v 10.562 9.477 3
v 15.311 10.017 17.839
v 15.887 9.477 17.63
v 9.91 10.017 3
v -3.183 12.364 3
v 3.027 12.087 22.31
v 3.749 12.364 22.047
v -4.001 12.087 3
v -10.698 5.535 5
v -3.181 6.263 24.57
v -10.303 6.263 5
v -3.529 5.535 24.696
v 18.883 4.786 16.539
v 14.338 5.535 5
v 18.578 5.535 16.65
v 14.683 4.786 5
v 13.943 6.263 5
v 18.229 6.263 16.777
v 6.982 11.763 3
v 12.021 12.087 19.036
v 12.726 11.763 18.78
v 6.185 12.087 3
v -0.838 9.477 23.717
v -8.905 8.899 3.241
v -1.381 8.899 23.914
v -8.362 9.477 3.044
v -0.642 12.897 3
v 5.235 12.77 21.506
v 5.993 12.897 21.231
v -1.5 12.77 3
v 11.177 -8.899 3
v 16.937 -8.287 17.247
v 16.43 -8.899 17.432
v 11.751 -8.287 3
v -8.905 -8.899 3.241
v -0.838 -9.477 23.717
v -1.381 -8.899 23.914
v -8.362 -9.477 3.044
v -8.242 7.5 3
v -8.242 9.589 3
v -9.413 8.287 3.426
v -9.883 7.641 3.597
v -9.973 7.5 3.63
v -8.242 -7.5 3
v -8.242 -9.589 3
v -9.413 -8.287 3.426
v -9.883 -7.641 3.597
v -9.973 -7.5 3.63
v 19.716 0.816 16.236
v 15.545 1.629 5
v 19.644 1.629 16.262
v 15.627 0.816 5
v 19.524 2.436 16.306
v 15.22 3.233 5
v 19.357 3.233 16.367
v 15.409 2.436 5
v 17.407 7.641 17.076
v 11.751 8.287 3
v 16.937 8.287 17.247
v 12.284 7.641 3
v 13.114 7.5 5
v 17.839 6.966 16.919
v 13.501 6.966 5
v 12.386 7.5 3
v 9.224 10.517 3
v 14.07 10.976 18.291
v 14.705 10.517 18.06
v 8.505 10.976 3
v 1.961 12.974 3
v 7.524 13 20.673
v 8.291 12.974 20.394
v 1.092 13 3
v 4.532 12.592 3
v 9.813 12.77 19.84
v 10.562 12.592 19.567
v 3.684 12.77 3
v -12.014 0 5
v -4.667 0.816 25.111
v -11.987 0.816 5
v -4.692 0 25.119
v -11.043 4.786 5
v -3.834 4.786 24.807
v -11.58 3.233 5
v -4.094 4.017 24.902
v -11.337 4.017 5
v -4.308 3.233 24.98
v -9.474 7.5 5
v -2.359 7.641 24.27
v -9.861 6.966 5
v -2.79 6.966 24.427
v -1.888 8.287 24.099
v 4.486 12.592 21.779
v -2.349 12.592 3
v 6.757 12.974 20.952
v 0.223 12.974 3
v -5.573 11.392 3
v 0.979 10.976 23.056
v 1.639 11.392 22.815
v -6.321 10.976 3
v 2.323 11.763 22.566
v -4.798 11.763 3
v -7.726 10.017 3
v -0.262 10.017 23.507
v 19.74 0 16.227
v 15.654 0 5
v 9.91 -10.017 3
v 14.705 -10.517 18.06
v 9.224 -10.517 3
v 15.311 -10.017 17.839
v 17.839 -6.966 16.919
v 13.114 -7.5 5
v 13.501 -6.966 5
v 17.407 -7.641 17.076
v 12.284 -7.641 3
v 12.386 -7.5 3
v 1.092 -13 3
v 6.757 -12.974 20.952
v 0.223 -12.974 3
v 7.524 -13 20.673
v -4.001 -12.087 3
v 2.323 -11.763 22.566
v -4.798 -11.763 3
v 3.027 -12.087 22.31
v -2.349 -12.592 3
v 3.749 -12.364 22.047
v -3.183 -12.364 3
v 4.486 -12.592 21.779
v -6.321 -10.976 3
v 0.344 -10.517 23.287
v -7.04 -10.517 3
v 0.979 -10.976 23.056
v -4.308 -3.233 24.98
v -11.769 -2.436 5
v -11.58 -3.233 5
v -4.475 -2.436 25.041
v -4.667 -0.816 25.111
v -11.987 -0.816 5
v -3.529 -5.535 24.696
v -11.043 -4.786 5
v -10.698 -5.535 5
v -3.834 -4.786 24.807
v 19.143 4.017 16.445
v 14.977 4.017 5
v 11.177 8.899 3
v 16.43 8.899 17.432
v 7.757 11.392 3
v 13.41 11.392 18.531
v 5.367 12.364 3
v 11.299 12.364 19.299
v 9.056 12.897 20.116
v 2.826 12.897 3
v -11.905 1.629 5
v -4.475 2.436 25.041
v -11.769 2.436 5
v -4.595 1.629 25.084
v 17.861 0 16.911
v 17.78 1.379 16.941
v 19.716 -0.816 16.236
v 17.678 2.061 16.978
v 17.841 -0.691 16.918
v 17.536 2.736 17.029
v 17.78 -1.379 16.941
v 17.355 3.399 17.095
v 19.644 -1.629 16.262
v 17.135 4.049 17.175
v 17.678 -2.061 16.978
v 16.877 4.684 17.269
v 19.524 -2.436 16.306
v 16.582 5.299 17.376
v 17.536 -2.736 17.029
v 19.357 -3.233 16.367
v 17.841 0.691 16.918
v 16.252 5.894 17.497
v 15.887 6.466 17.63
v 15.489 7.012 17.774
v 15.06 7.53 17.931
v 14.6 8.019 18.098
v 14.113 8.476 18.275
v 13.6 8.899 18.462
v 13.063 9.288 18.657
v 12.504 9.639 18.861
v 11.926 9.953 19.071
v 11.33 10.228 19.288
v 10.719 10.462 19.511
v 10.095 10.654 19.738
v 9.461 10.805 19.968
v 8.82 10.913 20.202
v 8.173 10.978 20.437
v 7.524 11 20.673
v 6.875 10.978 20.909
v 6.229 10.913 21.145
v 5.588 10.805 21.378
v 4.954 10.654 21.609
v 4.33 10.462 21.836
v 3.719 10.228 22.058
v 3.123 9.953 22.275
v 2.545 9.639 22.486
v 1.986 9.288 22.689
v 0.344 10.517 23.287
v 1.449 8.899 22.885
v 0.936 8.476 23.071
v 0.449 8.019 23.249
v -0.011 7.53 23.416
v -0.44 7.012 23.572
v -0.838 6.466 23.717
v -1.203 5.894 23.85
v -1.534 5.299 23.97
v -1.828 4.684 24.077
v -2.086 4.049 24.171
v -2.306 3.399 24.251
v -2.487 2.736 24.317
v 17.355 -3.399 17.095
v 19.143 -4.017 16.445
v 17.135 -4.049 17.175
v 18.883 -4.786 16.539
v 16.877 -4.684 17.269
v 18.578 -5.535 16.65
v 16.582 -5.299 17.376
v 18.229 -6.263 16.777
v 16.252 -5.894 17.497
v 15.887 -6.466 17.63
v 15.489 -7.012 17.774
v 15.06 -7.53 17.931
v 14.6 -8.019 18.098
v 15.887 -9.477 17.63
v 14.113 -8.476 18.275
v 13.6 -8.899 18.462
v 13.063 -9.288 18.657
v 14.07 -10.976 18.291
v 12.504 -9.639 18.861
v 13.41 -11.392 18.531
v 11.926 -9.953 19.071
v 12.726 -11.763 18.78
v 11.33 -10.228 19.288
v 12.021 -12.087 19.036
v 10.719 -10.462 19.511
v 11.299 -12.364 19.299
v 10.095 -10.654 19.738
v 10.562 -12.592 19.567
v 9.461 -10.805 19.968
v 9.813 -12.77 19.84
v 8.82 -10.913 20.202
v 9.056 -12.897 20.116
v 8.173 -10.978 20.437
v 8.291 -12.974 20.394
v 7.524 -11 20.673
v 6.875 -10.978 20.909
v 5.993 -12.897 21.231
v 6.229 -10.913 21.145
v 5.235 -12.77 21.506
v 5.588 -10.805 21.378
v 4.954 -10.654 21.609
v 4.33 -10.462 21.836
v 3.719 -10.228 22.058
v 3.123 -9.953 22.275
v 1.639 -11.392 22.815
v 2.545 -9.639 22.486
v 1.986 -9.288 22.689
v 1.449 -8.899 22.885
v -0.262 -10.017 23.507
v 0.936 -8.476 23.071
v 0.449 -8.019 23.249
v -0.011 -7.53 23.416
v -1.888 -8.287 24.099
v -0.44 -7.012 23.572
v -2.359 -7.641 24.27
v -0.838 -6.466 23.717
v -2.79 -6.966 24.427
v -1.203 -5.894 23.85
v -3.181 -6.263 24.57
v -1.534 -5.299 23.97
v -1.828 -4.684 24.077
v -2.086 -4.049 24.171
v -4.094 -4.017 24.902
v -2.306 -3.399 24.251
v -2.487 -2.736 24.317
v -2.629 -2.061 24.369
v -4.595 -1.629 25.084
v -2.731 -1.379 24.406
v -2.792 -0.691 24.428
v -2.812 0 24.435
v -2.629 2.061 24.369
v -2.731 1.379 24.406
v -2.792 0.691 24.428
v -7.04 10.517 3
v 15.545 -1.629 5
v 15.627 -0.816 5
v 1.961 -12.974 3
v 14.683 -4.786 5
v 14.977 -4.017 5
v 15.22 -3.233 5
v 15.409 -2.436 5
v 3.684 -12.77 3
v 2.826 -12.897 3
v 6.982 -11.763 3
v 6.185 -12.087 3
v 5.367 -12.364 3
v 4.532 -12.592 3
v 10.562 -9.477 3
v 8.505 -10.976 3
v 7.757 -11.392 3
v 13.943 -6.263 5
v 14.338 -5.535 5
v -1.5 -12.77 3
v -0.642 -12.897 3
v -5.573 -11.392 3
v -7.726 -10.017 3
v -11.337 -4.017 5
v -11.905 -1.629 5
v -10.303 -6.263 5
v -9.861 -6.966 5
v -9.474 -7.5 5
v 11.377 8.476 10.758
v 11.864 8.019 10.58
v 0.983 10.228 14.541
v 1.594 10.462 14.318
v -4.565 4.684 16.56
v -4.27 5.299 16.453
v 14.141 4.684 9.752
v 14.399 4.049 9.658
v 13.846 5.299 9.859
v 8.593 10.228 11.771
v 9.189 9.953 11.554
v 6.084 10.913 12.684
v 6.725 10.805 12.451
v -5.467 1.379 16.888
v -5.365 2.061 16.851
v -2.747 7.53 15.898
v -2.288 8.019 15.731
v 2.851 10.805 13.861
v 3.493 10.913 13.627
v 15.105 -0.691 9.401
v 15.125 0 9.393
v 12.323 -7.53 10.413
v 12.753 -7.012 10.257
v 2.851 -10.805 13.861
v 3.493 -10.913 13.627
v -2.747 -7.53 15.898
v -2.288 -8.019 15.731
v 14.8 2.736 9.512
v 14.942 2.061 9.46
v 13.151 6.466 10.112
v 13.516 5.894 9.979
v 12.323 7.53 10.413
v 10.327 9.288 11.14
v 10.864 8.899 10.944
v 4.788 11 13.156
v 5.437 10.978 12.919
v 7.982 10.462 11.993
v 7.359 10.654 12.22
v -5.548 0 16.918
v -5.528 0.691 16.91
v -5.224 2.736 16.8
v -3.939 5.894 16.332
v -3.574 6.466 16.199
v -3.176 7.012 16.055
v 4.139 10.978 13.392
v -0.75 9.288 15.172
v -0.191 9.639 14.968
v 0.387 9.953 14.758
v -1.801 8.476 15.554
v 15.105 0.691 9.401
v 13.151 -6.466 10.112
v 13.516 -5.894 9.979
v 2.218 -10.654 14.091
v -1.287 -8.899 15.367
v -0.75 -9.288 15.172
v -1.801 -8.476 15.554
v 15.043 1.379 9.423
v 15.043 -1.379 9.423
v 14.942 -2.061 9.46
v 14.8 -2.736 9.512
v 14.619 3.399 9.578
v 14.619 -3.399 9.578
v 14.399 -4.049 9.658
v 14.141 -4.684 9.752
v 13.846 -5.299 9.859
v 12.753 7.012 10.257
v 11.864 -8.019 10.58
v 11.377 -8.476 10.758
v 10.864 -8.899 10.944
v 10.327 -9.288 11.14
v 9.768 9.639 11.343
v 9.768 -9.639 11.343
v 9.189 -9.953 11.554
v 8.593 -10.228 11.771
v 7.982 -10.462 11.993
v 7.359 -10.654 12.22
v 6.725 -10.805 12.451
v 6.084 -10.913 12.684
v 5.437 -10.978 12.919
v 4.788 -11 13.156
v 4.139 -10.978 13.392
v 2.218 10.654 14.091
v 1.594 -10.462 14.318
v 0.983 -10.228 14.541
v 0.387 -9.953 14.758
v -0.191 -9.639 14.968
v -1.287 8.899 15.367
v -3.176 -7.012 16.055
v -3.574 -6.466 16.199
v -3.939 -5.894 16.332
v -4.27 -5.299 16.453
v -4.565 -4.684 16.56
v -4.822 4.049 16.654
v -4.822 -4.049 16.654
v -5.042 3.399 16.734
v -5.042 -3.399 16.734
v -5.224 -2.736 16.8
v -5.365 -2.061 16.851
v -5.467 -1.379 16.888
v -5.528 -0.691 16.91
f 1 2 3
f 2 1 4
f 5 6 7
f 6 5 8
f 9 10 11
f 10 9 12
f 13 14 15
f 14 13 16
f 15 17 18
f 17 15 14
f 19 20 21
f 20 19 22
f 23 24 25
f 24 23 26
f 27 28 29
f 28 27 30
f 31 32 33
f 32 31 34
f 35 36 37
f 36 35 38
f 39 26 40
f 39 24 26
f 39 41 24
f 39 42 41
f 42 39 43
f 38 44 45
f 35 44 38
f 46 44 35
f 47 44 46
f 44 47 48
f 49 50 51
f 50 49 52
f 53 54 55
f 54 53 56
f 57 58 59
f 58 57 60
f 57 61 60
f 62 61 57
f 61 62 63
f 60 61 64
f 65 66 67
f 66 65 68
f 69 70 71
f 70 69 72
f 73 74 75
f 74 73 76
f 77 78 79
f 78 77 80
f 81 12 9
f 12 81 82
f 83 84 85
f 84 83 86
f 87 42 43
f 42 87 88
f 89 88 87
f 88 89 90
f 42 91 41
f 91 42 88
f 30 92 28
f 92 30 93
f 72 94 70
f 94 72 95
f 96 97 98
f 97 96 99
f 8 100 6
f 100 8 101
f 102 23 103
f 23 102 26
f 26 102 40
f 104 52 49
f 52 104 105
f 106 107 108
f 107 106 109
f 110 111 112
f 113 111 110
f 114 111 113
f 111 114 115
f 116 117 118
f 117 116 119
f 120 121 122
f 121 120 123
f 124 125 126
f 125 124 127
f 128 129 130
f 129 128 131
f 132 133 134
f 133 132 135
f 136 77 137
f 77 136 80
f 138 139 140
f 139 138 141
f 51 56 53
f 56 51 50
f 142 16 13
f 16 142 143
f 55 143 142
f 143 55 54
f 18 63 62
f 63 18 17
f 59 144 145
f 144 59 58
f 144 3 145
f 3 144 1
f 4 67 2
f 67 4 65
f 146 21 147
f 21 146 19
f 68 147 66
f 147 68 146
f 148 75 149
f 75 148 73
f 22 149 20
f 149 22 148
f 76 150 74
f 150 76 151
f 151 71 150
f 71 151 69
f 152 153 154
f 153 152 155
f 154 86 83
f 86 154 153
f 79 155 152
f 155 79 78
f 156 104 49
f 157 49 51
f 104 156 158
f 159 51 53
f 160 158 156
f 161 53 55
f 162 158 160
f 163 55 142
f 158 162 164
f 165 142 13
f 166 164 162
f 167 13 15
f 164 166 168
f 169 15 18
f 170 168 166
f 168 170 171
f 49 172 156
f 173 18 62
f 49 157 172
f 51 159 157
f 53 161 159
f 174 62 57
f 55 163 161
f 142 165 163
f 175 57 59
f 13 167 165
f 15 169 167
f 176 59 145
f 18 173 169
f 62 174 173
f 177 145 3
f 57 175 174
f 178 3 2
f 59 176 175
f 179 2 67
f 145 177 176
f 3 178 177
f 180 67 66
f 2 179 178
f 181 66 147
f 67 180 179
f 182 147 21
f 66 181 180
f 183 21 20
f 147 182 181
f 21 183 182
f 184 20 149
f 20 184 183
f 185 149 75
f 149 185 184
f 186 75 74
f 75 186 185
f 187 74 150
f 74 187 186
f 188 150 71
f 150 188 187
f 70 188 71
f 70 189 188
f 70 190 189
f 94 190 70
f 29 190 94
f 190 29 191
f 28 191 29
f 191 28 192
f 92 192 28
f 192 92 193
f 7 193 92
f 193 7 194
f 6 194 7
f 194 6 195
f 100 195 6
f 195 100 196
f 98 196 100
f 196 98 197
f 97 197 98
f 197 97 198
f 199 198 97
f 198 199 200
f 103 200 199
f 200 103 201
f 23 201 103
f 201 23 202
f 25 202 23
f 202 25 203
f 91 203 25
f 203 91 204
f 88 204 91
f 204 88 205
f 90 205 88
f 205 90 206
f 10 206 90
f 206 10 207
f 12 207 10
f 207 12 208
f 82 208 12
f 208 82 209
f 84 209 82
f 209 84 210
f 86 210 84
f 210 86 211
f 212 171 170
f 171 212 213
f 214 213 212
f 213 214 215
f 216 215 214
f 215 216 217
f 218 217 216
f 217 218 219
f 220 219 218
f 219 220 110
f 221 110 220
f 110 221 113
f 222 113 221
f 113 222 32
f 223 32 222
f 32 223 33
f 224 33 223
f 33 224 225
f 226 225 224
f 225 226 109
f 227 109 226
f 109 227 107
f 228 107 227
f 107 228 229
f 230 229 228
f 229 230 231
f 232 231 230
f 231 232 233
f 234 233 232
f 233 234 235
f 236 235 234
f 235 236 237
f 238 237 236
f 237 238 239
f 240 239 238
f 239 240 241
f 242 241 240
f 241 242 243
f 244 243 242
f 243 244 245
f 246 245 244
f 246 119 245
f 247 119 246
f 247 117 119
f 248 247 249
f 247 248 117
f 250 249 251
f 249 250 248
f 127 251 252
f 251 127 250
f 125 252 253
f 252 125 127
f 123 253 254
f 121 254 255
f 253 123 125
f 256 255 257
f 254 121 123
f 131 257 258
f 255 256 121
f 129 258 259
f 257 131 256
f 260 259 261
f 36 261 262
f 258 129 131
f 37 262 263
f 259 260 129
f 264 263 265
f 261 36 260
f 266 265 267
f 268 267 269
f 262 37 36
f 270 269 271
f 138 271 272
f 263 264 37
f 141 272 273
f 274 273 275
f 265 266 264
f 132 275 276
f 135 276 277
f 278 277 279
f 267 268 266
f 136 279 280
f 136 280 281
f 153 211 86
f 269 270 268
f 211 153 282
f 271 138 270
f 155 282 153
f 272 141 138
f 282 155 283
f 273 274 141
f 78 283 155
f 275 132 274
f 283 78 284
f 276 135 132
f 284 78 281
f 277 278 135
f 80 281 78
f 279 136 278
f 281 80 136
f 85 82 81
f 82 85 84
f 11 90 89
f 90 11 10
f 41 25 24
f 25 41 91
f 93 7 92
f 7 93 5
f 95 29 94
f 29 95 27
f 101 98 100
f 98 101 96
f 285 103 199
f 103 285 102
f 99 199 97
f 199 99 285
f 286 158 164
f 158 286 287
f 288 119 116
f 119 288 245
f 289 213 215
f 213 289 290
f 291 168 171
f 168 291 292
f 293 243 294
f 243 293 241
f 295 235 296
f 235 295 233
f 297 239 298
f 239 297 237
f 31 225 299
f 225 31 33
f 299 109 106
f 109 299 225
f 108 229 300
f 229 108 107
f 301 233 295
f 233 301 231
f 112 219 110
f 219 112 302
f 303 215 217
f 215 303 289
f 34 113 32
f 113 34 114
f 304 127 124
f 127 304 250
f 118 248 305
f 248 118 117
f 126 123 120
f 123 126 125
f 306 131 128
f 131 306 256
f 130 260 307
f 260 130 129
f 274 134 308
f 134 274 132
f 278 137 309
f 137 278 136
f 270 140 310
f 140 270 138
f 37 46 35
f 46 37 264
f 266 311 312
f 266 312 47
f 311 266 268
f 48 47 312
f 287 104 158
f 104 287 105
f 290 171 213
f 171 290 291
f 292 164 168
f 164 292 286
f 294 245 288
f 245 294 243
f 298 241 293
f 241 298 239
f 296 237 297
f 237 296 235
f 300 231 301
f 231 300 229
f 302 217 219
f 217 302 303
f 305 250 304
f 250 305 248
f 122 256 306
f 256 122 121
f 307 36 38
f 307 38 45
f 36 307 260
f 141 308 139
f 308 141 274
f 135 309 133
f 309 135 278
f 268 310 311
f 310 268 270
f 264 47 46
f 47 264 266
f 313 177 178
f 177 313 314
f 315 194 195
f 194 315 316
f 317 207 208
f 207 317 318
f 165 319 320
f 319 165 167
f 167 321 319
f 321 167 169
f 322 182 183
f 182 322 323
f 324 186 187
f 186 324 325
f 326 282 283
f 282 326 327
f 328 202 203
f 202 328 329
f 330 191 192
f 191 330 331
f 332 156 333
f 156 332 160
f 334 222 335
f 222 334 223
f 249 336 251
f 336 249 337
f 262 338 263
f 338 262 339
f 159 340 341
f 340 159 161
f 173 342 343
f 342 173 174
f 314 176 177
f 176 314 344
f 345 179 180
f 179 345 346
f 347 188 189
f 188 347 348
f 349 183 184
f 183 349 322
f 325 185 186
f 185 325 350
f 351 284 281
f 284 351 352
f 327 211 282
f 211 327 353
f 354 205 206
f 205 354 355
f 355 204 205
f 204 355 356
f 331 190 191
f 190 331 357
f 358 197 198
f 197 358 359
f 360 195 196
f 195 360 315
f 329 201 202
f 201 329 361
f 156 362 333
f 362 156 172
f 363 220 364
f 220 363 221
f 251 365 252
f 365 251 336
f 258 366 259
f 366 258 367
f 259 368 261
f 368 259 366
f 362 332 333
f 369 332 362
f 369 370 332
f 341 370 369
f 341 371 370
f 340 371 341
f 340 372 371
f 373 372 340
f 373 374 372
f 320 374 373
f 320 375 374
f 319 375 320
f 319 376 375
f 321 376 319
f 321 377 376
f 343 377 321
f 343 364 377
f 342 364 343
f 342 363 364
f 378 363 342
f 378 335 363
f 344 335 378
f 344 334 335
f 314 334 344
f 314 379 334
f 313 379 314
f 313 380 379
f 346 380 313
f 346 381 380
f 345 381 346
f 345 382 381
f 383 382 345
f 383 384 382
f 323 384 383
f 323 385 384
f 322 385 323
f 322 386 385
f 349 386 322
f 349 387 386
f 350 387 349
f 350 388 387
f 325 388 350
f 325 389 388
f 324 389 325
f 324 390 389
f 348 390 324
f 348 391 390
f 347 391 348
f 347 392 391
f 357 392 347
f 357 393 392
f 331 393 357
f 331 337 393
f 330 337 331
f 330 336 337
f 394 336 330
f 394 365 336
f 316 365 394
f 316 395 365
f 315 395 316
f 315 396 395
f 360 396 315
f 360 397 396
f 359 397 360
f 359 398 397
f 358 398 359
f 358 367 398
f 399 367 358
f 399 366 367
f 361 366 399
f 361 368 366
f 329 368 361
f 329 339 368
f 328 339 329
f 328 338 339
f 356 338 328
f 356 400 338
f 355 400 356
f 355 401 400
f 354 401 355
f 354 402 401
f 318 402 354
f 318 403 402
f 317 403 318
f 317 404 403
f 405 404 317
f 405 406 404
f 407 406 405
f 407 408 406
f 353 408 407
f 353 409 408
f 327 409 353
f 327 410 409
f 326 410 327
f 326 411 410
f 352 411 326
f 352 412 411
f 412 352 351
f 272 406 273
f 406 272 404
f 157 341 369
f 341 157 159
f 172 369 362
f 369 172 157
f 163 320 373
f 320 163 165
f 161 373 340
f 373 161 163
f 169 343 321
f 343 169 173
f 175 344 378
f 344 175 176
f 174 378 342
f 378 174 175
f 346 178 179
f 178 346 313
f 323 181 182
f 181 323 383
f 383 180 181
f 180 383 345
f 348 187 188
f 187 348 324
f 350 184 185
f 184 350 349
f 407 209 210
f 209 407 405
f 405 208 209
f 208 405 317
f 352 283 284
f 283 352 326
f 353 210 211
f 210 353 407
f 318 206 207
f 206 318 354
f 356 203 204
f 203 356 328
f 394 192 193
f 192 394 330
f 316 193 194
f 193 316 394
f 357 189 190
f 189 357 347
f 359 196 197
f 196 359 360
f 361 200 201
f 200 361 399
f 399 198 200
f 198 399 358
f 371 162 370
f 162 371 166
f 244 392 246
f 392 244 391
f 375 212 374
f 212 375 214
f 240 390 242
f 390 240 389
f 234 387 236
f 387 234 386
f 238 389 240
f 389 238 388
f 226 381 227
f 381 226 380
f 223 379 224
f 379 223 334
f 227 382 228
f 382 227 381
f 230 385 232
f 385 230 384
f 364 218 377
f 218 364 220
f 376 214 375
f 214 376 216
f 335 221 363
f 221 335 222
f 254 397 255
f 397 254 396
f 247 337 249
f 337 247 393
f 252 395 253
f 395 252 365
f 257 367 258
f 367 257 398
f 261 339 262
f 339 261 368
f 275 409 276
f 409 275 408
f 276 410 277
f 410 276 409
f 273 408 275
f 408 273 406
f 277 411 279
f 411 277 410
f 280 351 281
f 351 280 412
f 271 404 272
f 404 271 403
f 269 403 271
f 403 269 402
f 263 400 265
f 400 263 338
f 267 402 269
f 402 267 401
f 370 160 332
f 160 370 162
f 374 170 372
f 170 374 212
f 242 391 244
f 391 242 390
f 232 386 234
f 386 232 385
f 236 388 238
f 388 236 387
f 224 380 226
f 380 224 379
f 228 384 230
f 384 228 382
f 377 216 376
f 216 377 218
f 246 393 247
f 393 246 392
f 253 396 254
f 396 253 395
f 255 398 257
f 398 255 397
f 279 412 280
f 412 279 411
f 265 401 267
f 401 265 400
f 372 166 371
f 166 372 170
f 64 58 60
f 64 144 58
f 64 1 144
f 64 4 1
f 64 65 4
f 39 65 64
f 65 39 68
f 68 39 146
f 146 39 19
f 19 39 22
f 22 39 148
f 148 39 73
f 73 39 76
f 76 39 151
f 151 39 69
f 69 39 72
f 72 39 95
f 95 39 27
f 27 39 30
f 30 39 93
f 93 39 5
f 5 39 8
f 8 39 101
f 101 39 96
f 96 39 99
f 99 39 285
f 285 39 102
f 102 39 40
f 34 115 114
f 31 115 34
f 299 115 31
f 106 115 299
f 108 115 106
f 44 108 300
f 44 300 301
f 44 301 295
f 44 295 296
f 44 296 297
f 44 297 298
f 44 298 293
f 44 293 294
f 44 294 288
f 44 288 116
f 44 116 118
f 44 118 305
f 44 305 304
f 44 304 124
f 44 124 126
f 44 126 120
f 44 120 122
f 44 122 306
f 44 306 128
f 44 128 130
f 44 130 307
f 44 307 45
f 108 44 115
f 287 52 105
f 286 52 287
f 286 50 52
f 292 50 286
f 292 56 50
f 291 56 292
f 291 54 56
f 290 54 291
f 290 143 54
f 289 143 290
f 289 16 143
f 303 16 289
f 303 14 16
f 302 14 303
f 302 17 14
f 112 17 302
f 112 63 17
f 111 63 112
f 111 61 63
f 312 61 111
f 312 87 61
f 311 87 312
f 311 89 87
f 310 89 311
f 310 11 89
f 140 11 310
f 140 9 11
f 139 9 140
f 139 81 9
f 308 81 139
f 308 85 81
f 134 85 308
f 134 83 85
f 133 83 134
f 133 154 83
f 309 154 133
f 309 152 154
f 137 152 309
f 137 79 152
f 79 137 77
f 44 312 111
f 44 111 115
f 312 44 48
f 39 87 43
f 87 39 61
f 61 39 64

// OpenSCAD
// Cylinder with 608ZZ bearing recess
// Cylinder: Diameter 26mm, Height 15mm
// Bearing recess: Diameter 22mm, Depth 8mm

$fn = 100; // Set resolution for smooth curves

difference() {
    // Rotated cylinder with bearing recess
    rotate([0, 20, 0]) {
        difference() {
            // Main cylinder (extended to compensate for rotation)
            cylinder(h = 22, d = 26, center = false);

            // Bearing recess (608ZZ)
            translate([0, 0, 14])
                cylinder(h = 8.1, d = 22, center = false);
        }
    }

    // Cut off bottom to make base flush
    translate([-50, -50, -50])
        cube([100, 100, 53]);

    // Channel recess in bottom (15mm wide, 4mm deep)
    translate([-20, -7.5, 1])
        cube([40, 15, 4]);
}
